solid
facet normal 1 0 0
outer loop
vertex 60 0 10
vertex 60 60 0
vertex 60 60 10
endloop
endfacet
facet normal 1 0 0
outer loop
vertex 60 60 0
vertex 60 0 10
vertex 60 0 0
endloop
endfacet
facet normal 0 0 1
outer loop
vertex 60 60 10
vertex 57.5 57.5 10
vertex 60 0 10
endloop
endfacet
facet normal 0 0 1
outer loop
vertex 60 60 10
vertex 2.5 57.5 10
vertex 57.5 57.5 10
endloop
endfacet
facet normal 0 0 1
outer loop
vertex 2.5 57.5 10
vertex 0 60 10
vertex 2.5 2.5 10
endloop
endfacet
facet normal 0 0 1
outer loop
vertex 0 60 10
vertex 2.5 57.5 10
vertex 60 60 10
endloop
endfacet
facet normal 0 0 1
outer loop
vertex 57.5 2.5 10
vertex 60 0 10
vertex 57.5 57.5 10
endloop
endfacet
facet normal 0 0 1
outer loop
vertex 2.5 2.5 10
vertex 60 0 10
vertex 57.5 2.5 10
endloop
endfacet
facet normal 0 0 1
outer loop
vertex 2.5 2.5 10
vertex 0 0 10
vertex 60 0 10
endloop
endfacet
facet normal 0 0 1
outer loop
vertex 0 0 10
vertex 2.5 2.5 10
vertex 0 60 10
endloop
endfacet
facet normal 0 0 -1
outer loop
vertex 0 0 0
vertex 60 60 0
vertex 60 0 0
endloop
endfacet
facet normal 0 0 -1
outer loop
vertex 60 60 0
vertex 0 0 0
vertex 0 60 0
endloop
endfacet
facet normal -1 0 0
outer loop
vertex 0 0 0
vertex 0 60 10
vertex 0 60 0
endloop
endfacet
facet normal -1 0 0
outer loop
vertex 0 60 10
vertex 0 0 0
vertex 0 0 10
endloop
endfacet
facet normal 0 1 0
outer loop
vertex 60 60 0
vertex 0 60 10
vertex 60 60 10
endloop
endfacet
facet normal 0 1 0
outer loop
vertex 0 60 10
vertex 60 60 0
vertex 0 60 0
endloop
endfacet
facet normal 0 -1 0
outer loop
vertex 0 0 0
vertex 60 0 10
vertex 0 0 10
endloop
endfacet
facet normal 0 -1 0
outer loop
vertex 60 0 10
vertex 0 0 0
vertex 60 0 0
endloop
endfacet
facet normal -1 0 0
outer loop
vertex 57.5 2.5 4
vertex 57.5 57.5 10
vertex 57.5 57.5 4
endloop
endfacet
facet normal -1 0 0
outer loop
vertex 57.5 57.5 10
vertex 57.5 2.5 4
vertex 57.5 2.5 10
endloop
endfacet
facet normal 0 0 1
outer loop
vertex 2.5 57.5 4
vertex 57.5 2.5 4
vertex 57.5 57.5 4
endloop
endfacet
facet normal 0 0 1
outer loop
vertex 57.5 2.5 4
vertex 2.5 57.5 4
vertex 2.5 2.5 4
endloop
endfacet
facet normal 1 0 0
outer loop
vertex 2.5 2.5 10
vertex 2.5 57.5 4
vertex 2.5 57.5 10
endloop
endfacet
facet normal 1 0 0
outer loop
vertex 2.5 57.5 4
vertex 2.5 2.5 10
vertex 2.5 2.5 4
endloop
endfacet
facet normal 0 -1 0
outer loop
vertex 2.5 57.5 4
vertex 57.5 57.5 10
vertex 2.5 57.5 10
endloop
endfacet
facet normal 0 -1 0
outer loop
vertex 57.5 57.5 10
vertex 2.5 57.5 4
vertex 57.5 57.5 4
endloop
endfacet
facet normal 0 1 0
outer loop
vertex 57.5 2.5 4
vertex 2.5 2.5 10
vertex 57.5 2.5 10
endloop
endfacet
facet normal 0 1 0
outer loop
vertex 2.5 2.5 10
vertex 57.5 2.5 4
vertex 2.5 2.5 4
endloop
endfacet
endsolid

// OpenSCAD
difference() {
cube([60, 60, 10]);
translate([2.5,2.5,4]) cube([55, 55, 10]);
}
